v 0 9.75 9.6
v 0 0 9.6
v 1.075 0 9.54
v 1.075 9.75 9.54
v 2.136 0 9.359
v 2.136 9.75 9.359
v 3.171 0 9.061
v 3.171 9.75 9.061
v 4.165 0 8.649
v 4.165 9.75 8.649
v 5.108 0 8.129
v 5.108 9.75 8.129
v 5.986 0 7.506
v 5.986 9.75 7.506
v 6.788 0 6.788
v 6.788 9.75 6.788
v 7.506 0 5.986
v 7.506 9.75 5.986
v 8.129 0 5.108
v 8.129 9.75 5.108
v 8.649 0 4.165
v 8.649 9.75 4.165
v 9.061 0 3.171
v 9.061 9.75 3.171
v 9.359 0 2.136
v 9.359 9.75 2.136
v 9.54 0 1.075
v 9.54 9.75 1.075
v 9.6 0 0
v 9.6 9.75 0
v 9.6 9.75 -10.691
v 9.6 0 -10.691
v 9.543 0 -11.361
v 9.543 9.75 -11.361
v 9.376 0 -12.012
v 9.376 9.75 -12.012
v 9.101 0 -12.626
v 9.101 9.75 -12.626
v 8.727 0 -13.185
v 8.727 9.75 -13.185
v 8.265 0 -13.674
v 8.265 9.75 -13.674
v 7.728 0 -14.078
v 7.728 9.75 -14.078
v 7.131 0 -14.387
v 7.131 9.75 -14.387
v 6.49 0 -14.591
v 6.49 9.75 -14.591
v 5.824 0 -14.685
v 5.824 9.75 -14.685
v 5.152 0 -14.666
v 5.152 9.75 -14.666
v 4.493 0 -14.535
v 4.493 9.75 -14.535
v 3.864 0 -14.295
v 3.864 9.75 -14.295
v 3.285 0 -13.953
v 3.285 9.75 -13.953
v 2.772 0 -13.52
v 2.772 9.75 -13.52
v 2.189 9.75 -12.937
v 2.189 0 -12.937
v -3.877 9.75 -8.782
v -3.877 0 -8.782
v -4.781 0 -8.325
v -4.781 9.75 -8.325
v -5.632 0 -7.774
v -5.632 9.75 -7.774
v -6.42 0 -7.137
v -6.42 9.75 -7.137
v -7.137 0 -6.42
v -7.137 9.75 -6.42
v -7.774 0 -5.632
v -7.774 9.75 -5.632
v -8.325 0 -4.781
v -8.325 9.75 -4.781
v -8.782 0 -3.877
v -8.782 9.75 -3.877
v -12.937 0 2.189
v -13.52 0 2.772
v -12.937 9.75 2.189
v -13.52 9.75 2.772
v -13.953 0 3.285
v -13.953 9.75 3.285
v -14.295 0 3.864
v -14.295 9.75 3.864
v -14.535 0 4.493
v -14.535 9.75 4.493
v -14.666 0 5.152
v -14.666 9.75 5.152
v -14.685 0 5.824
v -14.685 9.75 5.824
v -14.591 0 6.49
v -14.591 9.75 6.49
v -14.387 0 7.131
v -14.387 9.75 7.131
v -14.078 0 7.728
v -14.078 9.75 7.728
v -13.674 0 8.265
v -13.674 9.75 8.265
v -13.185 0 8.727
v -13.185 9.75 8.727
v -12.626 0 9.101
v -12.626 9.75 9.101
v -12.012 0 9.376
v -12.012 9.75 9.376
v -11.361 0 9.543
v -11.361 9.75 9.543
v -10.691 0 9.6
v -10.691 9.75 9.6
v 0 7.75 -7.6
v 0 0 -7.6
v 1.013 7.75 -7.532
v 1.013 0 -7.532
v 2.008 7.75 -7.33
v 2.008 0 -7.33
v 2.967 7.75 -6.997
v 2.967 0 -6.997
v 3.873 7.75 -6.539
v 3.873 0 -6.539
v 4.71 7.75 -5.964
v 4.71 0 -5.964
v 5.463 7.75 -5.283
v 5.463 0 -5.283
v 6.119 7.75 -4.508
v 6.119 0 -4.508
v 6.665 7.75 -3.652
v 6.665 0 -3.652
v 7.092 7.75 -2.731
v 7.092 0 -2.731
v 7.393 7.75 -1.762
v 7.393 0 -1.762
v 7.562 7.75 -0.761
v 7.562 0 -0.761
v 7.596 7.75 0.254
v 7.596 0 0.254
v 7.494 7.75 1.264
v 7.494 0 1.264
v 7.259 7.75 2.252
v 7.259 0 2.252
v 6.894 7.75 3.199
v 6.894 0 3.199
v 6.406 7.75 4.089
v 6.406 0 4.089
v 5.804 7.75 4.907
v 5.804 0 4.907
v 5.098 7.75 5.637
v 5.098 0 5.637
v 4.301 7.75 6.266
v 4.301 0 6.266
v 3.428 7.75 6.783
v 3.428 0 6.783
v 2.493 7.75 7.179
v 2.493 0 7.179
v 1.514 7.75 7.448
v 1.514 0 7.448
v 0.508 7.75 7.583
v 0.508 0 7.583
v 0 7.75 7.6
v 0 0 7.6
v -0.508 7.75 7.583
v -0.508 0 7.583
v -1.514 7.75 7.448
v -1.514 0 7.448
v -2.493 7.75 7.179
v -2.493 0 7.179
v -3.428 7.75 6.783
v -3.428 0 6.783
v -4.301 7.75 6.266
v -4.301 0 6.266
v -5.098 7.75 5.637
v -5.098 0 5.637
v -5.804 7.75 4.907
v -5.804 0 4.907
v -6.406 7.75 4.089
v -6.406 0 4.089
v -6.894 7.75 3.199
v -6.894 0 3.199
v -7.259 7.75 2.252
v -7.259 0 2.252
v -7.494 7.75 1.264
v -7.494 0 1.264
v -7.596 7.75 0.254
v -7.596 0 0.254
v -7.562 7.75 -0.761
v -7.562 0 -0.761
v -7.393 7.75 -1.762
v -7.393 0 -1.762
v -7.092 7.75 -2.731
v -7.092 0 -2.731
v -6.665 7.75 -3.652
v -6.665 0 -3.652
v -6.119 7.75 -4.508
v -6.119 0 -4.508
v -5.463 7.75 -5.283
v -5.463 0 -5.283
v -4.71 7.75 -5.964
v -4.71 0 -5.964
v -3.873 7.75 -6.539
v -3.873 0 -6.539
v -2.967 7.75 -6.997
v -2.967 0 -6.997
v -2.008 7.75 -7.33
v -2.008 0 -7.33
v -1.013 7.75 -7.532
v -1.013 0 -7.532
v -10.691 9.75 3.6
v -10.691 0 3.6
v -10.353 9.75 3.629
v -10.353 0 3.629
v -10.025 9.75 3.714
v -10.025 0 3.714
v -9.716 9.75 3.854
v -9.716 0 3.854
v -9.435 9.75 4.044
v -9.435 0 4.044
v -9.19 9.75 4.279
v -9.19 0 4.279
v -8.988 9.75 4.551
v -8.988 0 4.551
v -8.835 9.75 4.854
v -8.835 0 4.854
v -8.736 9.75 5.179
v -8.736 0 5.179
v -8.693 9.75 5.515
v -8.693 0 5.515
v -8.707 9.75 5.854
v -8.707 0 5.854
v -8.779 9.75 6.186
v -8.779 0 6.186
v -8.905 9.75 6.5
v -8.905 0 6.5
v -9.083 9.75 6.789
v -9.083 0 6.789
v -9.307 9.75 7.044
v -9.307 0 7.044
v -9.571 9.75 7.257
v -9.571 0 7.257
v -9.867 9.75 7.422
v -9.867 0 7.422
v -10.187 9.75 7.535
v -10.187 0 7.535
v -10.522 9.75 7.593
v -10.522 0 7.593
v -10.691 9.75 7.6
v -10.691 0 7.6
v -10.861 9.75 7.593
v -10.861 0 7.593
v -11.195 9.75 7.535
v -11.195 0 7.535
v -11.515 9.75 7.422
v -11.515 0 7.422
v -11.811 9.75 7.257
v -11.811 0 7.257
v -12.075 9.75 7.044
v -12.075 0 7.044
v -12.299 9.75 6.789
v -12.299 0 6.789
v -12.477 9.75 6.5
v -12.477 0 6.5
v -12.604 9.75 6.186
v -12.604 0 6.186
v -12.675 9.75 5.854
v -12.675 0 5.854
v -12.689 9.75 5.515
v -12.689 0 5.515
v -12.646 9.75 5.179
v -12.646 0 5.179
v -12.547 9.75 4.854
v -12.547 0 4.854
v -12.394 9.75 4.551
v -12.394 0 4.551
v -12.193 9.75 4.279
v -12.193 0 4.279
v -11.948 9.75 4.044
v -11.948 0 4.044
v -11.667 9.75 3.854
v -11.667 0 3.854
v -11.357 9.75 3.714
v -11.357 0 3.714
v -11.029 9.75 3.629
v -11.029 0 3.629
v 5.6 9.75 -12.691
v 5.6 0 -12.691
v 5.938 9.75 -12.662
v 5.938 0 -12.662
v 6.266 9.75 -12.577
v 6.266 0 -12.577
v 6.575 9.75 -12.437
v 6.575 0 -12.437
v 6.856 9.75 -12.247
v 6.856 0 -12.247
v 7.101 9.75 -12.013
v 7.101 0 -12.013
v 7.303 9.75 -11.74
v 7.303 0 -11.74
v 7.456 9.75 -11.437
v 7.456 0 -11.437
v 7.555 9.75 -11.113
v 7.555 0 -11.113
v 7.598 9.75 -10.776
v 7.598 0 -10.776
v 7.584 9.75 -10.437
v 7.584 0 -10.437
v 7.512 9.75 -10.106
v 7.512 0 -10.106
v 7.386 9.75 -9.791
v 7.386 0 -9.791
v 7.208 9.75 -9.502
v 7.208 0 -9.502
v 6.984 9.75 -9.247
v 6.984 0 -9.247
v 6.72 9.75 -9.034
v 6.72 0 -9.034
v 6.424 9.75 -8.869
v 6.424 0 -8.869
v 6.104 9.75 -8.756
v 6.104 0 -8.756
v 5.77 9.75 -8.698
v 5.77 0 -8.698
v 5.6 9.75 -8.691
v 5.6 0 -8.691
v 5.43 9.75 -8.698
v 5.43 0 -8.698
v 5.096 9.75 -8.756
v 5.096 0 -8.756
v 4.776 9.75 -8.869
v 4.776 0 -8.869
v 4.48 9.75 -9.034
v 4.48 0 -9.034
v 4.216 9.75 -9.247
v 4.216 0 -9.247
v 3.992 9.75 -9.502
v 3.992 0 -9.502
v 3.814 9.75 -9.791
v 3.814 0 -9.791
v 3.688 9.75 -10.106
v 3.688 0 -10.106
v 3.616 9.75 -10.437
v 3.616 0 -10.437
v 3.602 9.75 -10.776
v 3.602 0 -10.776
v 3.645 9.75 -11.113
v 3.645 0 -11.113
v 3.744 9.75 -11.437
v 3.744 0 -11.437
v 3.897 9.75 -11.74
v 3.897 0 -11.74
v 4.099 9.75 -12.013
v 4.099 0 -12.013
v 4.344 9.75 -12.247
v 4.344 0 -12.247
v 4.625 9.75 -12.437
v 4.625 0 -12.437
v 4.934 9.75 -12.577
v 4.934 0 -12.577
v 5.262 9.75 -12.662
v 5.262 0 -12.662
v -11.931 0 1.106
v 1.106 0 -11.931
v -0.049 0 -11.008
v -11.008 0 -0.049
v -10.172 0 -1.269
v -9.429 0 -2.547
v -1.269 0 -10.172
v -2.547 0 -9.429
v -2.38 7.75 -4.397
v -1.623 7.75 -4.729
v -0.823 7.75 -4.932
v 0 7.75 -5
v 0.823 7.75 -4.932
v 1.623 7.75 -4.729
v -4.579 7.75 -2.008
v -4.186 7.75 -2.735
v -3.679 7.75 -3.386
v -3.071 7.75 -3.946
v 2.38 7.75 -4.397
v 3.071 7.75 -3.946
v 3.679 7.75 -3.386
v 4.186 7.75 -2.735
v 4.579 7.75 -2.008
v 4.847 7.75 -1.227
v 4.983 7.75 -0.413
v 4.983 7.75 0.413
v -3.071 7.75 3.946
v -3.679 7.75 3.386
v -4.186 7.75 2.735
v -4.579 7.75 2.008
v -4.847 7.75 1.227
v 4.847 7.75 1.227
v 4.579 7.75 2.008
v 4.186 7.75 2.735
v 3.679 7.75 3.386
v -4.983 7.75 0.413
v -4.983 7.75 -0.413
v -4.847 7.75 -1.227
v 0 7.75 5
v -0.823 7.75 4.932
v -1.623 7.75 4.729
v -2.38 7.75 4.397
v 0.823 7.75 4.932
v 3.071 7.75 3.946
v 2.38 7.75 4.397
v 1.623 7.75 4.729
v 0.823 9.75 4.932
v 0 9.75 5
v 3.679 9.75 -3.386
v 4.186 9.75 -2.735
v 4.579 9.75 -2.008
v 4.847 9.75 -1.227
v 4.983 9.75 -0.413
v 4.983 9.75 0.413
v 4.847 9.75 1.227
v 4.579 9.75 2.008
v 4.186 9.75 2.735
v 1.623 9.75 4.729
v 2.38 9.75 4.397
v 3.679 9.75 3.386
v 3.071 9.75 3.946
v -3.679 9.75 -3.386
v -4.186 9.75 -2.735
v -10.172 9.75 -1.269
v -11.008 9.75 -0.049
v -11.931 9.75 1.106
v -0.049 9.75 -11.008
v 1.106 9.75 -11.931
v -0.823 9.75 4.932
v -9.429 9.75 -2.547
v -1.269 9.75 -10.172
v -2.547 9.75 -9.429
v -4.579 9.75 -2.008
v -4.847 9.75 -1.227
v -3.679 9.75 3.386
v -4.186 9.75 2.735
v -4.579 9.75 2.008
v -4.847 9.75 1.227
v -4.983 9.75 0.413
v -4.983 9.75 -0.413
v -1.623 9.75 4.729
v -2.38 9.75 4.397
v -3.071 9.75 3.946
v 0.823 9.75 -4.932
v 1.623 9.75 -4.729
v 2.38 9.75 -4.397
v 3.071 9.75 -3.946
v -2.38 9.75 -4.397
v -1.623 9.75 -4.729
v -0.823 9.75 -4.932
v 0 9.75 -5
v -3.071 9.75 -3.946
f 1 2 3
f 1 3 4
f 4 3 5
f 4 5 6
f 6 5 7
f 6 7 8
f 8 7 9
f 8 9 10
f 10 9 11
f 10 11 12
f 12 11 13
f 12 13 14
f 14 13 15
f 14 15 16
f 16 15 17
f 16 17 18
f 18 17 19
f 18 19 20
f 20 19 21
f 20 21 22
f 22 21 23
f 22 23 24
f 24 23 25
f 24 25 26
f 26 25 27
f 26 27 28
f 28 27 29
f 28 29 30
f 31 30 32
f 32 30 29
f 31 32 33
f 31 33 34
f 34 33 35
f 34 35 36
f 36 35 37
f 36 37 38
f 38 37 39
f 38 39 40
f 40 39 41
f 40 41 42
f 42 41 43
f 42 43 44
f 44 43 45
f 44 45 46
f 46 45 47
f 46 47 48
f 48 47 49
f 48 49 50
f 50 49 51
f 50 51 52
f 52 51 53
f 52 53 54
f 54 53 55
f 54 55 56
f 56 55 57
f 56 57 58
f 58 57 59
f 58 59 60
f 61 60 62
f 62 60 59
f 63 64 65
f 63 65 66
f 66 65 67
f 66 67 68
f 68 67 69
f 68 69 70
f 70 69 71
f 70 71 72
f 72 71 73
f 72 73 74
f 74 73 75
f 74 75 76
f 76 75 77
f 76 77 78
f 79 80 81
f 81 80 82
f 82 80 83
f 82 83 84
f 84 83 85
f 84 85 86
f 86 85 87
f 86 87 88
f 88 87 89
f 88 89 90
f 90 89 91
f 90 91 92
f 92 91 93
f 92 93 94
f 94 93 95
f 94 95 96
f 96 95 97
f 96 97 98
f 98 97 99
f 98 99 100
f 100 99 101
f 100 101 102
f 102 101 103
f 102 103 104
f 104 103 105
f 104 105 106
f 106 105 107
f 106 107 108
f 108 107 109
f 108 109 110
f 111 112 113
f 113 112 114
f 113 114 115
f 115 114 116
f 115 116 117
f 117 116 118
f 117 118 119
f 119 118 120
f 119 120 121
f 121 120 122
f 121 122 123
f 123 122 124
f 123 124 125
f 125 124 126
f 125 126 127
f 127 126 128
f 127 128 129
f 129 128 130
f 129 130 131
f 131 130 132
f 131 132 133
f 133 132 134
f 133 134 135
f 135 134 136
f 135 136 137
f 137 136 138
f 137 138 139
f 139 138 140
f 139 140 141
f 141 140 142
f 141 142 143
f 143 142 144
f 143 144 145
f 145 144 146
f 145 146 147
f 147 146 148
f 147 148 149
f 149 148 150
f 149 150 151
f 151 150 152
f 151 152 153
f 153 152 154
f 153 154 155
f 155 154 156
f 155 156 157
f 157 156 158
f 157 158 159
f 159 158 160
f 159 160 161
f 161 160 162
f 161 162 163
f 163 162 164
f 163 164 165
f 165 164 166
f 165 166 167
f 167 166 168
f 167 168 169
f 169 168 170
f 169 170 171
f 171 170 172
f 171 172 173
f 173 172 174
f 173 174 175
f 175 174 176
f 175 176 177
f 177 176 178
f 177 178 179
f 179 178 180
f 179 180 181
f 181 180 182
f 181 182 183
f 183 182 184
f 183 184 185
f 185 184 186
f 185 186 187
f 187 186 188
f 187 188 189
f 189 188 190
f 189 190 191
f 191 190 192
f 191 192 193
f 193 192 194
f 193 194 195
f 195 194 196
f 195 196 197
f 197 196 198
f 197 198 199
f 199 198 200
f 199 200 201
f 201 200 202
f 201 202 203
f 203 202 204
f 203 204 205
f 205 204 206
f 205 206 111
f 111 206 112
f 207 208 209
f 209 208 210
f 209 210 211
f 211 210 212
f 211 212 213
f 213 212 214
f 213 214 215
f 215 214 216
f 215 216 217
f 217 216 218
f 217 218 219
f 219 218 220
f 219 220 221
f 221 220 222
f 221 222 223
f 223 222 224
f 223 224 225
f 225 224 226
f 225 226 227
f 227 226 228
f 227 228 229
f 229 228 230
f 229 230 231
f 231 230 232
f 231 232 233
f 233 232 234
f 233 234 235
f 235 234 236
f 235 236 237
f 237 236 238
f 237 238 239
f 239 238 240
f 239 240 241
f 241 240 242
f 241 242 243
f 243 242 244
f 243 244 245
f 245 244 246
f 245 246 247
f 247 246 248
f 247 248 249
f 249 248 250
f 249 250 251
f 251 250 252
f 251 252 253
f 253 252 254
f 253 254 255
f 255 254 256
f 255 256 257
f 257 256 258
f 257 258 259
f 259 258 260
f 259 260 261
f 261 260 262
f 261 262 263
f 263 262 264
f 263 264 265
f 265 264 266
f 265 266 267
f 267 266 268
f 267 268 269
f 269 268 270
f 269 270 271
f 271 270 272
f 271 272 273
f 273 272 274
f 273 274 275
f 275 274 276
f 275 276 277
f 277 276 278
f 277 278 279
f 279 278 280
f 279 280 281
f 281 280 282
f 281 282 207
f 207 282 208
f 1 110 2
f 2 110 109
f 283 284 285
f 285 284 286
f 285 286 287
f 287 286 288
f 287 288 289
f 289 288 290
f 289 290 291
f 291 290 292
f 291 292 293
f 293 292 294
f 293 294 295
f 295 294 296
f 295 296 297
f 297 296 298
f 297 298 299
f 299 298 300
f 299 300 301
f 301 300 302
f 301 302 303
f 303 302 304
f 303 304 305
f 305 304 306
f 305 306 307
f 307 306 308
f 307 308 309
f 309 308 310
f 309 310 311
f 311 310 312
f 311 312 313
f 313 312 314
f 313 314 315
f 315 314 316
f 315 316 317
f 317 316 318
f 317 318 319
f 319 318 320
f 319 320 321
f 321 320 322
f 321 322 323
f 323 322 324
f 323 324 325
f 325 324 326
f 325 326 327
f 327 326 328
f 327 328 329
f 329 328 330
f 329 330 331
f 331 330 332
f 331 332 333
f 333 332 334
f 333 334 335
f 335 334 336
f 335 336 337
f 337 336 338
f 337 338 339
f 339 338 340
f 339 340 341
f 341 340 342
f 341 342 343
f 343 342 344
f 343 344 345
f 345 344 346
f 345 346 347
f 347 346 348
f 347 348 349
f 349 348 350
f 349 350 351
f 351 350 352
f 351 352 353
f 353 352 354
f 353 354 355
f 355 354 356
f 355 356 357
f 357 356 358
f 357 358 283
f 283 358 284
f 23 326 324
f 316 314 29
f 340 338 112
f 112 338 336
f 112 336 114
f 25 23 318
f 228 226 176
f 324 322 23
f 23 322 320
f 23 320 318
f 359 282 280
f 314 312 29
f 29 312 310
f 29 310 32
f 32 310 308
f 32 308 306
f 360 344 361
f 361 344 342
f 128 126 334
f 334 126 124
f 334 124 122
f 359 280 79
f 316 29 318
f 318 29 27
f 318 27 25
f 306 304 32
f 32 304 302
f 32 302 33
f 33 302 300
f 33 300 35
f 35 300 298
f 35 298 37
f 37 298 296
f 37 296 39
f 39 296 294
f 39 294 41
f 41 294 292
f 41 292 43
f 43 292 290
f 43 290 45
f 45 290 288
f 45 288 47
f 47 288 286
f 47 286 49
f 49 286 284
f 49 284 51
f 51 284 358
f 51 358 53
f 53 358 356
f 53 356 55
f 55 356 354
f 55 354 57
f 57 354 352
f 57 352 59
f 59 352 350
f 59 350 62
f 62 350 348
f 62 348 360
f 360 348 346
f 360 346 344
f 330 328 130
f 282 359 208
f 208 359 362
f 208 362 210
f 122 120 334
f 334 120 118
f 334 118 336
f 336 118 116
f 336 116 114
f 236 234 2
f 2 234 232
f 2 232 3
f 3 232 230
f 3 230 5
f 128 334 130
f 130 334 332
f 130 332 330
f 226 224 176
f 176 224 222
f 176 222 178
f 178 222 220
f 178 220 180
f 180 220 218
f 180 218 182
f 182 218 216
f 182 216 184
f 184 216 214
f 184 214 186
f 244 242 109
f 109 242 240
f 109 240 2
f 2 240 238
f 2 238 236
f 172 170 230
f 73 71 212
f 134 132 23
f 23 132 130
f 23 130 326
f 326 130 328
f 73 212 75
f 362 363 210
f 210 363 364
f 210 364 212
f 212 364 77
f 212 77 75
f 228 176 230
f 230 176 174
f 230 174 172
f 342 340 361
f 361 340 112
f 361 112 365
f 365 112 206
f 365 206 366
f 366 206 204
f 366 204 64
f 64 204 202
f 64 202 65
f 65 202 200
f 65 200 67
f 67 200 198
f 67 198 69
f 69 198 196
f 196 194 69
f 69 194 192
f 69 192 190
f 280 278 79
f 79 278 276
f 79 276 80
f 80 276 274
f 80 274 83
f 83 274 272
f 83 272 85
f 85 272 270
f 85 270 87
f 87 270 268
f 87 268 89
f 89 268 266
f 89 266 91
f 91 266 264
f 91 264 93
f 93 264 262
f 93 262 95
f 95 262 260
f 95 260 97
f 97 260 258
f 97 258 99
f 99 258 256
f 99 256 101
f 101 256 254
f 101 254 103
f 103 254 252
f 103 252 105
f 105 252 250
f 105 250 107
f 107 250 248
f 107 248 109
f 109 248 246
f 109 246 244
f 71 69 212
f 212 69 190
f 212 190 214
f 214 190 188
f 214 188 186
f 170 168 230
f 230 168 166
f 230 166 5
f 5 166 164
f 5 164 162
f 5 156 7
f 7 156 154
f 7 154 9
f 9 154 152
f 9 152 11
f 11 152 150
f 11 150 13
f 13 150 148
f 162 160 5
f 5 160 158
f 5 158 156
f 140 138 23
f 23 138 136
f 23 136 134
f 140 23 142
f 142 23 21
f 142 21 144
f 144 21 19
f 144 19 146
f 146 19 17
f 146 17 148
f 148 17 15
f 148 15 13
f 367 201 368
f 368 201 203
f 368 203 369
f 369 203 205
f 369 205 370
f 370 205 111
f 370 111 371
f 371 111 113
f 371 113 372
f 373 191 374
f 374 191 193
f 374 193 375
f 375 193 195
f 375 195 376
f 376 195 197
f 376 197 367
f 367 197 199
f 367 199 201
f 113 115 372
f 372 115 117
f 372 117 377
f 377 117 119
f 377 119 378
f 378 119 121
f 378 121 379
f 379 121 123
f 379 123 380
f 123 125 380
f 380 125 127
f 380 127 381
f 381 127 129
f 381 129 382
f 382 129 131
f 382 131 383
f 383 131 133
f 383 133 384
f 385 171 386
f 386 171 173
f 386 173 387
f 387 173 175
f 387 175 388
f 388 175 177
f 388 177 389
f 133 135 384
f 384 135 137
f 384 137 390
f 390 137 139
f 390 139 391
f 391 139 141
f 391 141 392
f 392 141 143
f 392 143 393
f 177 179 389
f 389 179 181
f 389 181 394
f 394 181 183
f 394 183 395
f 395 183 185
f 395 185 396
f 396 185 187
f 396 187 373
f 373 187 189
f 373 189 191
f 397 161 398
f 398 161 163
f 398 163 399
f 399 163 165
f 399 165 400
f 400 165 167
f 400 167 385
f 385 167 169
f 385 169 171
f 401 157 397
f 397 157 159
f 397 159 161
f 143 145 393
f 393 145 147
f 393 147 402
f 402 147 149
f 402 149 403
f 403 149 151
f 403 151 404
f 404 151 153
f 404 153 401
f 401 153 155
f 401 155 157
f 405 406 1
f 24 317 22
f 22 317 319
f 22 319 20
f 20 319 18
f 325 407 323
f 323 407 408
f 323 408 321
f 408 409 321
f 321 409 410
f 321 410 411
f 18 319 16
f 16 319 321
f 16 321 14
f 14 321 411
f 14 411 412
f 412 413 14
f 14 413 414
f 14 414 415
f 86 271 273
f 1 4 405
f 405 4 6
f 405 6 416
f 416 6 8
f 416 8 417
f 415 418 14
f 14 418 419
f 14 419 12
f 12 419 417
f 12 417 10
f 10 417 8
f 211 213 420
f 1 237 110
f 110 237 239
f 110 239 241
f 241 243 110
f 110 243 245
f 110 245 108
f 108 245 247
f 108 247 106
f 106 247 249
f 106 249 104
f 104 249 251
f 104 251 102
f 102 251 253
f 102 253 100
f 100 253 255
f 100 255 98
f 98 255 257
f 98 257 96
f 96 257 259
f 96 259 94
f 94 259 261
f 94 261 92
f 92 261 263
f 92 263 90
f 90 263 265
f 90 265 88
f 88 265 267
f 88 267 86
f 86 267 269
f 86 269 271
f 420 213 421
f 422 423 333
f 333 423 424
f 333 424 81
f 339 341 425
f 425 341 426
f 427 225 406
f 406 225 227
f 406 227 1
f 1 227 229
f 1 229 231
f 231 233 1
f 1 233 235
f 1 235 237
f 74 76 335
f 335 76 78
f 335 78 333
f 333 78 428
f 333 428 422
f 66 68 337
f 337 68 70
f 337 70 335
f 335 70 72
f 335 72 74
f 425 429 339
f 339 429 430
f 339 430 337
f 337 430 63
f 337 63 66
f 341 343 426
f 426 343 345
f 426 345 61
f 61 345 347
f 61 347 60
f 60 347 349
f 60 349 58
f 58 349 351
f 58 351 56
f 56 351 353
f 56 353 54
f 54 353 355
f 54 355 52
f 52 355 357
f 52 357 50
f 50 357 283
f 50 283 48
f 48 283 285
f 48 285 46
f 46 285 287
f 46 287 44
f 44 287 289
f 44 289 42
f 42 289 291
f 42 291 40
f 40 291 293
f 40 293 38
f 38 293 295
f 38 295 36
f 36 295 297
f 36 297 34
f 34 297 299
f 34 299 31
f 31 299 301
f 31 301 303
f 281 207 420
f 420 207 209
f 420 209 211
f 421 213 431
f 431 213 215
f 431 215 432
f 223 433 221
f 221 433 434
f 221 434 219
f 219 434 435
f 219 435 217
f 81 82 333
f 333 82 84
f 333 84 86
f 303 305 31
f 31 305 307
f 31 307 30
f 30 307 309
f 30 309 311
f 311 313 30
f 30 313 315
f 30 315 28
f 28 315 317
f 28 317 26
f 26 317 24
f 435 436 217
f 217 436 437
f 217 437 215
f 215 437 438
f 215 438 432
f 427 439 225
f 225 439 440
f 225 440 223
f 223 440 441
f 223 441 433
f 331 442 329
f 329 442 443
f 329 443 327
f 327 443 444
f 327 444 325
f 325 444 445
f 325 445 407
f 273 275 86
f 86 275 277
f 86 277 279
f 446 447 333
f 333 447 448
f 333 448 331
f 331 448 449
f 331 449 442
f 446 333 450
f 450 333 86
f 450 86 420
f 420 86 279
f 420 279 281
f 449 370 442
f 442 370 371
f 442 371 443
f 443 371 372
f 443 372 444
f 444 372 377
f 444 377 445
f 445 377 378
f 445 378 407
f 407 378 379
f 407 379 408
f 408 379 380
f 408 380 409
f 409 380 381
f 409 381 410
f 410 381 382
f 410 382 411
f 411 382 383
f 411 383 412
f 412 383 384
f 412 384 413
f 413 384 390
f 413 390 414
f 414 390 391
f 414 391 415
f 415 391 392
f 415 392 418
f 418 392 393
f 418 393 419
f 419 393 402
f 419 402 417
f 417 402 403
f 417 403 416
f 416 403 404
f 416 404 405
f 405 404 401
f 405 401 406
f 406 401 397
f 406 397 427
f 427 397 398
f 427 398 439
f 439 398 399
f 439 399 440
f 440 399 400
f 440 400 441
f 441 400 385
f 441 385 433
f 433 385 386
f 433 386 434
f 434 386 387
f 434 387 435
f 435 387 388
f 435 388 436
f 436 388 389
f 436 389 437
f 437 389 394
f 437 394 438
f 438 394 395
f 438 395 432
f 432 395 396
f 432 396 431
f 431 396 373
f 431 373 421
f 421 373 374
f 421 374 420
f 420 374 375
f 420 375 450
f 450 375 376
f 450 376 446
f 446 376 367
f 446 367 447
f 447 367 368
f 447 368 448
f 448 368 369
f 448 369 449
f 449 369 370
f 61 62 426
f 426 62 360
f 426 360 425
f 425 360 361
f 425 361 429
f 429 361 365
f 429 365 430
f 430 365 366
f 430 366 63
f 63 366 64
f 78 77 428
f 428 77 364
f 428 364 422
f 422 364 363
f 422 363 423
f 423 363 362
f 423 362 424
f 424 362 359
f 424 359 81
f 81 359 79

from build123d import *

# Parameters (mm, degrees)
SKETCH1_R           = 2
SKETCH1_R_2         = 7.6
BOSS_EXTRUDE1_DEPTH = 7.75
SKETCH2_R           = 2
SKETCH2_R_2         = 5
BOSS_EXTRUDE2_DEPTH = 2
FILLET1_R           = 20


with BuildPart() as part:
    # Sketch1 → Boss-Extrude1 (new body)
    with BuildSketch(Plane(origin=(0, 0, 0), x_dir=(1, 0, 0), z_dir=(0, 1, 0))):
        with BuildLine():
            Line((2.771572875, 13.519595949), (-1.226723266, 9.521299808))
            ThreePointArc((-1.226723266, 9.521299808), (-6.788225099, 6.788225099), (-9.521299808, 1.226723266))
            Line((-9.521299808, 1.226723266), (-13.519595949, -2.771572875))
            ThreePointArc((-13.519595949, -2.771572875), (-14.386686955, -7.130733729), (-10.691168825, -9.6))
            Line((-10.691168825, -9.6), (0, -9.6))
            ThreePointArc((0, -9.6), (6.788225099, -6.788225099), (9.6, 0))
            Line((9.6, 0), (9.6, 10.691168825))
            ThreePointArc((9.6, 10.691168825), (7.130733729, 14.386686955), (2.771572875, 13.519595949))
        make_face()
        with Locations(Location((-10.691168825, -5.6, 0), (0, 0, 270))):
            Circle(SKETCH1_R, mode=Mode.SUBTRACT)
        with Locations(Location((0, 0, 0), (0, 0, 270))):
            Circle(SKETCH1_R_2, mode=Mode.SUBTRACT)
        with Locations(Location((5.6, 10.691168825, 0), (0, 0, 270))):
            Circle(SKETCH1_R, mode=Mode.SUBTRACT)
    extrude(amount=BOSS_EXTRUDE1_DEPTH)

    # Sketch2 → Boss-Extrude2 (add)
    with BuildSketch(Plane(origin=(0, 7.75, 0), x_dir=(1, 0, 0), z_dir=(0, 1, 0))):
        with BuildLine():
            Line((9.6, 0), (9.6, 10.691168825))
            ThreePointArc((9.6, 10.691168825), (7.130733729, 14.386686955), (2.771572875, 13.519595949))
            Line((2.771572875, 13.519595949), (-1.226723266, 9.521299808))
            ThreePointArc((-1.226723266, 9.521299808), (-6.788225099, 6.788225099), (-9.521299808, 1.226723266))
            Line((-9.521299808, 1.226723266), (-13.519595949, -2.771572875))
            ThreePointArc((-13.519595949, -2.771572875), (-14.386686955, -7.130733729), (-10.691168825, -9.6))
            Line((-10.691168825, -9.6), (0, -9.6))
            ThreePointArc((0, -9.6), (6.788225099, -6.788225099), (9.6, 0))
        make_face()
        with Locations(Location((-10.691168825, -5.6, 0), (0, 0, 270))):
            Circle(SKETCH2_R, mode=Mode.SUBTRACT)
        with Locations(Location((5.6, 10.691168825, 0), (0, 0, 270))):
            Circle(SKETCH2_R, mode=Mode.SUBTRACT)
        with Locations(Location((0, 0, 0), (0, 0, 270))):
            Circle(SKETCH2_R_2, mode=Mode.SUBTRACT)
    extrude(amount=BOSS_EXTRUDE2_DEPTH)

    # Fillet1
    fillet1_edges = [part.edges().sort_by_distance(p)[0] for p in [
        (-9.521299808, 4.875, -1.226723266),
        (-1.226723266, 4.875, -9.521299808),
    ]]
    fillet(fillet1_edges, radius=FILLET1_R)


solid = part.part
